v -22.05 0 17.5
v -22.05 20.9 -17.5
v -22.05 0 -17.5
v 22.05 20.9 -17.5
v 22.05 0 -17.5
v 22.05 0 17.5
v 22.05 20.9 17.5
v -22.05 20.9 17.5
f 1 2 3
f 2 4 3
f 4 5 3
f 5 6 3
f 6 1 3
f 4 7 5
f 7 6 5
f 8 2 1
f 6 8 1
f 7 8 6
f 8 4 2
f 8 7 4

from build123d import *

# Parameters (mm, degrees)
SKETCH_34_W         = 44.1
SKETCH_34_H         = 35
EXTRUDE_1_DEPTH     = 20.9
SKETCH_35_W         = 8
SKETCH_35_H         = 8
EXTRUDE_2_DEPTH     = 109.1
SKETCH_36_W         = 3
SKETCH_36_H         = 3
EXTRUDE_3_DEPTH     = 109
SKETCH_37_W         = 130
SKETCH_37_H         = 130
CUT_EXTRUDE_1_DEPTH = 219.1


with BuildPart() as part:
    # ｽｹｯﾁ34 → ﾎﾞｽ - 押し出し1 (new body)
    with BuildSketch(Plane(origin=(0, 0, 0), x_dir=(1, 0, 0), z_dir=(0, 1, 0))):
        Rectangle(SKETCH_34_W, SKETCH_34_H)
    extrude(amount=EXTRUDE_1_DEPTH)

    # ｽｹｯﾁ35 → ﾎﾞｽ - 押し出し2 (add)
    with BuildSketch(Plane(origin=(0, 20.9, 0), x_dir=(1, 0, 0), z_dir=(0, 1, 0))):
        Rectangle(SKETCH_35_W, SKETCH_35_H)
    extrude(amount=EXTRUDE_2_DEPTH)

    # ｽｹｯﾁ36 → ﾎﾞｽ - 押し出し3 (add)
    with BuildSketch(Plane(origin=(0, 130, 0), x_dir=(1, 0, 0), z_dir=(0, 1, 0))):
        Rectangle(SKETCH_36_W, SKETCH_36_H)
    extrude(amount=EXTRUDE_3_DEPTH)

    # ｽｹｯﾁ37 → ｶｯﾄ - 押し出し1 (cut, through all)
    with BuildSketch(Plane(origin=(0, 20.9, 0), x_dir=(1, 0, 0), z_dir=(0, 1, 0))):
        Rectangle(SKETCH_37_W, SKETCH_37_H)
    extrude(amount=CUT_EXTRUDE_1_DEPTH, mode=Mode.SUBTRACT)


solid = part.part
